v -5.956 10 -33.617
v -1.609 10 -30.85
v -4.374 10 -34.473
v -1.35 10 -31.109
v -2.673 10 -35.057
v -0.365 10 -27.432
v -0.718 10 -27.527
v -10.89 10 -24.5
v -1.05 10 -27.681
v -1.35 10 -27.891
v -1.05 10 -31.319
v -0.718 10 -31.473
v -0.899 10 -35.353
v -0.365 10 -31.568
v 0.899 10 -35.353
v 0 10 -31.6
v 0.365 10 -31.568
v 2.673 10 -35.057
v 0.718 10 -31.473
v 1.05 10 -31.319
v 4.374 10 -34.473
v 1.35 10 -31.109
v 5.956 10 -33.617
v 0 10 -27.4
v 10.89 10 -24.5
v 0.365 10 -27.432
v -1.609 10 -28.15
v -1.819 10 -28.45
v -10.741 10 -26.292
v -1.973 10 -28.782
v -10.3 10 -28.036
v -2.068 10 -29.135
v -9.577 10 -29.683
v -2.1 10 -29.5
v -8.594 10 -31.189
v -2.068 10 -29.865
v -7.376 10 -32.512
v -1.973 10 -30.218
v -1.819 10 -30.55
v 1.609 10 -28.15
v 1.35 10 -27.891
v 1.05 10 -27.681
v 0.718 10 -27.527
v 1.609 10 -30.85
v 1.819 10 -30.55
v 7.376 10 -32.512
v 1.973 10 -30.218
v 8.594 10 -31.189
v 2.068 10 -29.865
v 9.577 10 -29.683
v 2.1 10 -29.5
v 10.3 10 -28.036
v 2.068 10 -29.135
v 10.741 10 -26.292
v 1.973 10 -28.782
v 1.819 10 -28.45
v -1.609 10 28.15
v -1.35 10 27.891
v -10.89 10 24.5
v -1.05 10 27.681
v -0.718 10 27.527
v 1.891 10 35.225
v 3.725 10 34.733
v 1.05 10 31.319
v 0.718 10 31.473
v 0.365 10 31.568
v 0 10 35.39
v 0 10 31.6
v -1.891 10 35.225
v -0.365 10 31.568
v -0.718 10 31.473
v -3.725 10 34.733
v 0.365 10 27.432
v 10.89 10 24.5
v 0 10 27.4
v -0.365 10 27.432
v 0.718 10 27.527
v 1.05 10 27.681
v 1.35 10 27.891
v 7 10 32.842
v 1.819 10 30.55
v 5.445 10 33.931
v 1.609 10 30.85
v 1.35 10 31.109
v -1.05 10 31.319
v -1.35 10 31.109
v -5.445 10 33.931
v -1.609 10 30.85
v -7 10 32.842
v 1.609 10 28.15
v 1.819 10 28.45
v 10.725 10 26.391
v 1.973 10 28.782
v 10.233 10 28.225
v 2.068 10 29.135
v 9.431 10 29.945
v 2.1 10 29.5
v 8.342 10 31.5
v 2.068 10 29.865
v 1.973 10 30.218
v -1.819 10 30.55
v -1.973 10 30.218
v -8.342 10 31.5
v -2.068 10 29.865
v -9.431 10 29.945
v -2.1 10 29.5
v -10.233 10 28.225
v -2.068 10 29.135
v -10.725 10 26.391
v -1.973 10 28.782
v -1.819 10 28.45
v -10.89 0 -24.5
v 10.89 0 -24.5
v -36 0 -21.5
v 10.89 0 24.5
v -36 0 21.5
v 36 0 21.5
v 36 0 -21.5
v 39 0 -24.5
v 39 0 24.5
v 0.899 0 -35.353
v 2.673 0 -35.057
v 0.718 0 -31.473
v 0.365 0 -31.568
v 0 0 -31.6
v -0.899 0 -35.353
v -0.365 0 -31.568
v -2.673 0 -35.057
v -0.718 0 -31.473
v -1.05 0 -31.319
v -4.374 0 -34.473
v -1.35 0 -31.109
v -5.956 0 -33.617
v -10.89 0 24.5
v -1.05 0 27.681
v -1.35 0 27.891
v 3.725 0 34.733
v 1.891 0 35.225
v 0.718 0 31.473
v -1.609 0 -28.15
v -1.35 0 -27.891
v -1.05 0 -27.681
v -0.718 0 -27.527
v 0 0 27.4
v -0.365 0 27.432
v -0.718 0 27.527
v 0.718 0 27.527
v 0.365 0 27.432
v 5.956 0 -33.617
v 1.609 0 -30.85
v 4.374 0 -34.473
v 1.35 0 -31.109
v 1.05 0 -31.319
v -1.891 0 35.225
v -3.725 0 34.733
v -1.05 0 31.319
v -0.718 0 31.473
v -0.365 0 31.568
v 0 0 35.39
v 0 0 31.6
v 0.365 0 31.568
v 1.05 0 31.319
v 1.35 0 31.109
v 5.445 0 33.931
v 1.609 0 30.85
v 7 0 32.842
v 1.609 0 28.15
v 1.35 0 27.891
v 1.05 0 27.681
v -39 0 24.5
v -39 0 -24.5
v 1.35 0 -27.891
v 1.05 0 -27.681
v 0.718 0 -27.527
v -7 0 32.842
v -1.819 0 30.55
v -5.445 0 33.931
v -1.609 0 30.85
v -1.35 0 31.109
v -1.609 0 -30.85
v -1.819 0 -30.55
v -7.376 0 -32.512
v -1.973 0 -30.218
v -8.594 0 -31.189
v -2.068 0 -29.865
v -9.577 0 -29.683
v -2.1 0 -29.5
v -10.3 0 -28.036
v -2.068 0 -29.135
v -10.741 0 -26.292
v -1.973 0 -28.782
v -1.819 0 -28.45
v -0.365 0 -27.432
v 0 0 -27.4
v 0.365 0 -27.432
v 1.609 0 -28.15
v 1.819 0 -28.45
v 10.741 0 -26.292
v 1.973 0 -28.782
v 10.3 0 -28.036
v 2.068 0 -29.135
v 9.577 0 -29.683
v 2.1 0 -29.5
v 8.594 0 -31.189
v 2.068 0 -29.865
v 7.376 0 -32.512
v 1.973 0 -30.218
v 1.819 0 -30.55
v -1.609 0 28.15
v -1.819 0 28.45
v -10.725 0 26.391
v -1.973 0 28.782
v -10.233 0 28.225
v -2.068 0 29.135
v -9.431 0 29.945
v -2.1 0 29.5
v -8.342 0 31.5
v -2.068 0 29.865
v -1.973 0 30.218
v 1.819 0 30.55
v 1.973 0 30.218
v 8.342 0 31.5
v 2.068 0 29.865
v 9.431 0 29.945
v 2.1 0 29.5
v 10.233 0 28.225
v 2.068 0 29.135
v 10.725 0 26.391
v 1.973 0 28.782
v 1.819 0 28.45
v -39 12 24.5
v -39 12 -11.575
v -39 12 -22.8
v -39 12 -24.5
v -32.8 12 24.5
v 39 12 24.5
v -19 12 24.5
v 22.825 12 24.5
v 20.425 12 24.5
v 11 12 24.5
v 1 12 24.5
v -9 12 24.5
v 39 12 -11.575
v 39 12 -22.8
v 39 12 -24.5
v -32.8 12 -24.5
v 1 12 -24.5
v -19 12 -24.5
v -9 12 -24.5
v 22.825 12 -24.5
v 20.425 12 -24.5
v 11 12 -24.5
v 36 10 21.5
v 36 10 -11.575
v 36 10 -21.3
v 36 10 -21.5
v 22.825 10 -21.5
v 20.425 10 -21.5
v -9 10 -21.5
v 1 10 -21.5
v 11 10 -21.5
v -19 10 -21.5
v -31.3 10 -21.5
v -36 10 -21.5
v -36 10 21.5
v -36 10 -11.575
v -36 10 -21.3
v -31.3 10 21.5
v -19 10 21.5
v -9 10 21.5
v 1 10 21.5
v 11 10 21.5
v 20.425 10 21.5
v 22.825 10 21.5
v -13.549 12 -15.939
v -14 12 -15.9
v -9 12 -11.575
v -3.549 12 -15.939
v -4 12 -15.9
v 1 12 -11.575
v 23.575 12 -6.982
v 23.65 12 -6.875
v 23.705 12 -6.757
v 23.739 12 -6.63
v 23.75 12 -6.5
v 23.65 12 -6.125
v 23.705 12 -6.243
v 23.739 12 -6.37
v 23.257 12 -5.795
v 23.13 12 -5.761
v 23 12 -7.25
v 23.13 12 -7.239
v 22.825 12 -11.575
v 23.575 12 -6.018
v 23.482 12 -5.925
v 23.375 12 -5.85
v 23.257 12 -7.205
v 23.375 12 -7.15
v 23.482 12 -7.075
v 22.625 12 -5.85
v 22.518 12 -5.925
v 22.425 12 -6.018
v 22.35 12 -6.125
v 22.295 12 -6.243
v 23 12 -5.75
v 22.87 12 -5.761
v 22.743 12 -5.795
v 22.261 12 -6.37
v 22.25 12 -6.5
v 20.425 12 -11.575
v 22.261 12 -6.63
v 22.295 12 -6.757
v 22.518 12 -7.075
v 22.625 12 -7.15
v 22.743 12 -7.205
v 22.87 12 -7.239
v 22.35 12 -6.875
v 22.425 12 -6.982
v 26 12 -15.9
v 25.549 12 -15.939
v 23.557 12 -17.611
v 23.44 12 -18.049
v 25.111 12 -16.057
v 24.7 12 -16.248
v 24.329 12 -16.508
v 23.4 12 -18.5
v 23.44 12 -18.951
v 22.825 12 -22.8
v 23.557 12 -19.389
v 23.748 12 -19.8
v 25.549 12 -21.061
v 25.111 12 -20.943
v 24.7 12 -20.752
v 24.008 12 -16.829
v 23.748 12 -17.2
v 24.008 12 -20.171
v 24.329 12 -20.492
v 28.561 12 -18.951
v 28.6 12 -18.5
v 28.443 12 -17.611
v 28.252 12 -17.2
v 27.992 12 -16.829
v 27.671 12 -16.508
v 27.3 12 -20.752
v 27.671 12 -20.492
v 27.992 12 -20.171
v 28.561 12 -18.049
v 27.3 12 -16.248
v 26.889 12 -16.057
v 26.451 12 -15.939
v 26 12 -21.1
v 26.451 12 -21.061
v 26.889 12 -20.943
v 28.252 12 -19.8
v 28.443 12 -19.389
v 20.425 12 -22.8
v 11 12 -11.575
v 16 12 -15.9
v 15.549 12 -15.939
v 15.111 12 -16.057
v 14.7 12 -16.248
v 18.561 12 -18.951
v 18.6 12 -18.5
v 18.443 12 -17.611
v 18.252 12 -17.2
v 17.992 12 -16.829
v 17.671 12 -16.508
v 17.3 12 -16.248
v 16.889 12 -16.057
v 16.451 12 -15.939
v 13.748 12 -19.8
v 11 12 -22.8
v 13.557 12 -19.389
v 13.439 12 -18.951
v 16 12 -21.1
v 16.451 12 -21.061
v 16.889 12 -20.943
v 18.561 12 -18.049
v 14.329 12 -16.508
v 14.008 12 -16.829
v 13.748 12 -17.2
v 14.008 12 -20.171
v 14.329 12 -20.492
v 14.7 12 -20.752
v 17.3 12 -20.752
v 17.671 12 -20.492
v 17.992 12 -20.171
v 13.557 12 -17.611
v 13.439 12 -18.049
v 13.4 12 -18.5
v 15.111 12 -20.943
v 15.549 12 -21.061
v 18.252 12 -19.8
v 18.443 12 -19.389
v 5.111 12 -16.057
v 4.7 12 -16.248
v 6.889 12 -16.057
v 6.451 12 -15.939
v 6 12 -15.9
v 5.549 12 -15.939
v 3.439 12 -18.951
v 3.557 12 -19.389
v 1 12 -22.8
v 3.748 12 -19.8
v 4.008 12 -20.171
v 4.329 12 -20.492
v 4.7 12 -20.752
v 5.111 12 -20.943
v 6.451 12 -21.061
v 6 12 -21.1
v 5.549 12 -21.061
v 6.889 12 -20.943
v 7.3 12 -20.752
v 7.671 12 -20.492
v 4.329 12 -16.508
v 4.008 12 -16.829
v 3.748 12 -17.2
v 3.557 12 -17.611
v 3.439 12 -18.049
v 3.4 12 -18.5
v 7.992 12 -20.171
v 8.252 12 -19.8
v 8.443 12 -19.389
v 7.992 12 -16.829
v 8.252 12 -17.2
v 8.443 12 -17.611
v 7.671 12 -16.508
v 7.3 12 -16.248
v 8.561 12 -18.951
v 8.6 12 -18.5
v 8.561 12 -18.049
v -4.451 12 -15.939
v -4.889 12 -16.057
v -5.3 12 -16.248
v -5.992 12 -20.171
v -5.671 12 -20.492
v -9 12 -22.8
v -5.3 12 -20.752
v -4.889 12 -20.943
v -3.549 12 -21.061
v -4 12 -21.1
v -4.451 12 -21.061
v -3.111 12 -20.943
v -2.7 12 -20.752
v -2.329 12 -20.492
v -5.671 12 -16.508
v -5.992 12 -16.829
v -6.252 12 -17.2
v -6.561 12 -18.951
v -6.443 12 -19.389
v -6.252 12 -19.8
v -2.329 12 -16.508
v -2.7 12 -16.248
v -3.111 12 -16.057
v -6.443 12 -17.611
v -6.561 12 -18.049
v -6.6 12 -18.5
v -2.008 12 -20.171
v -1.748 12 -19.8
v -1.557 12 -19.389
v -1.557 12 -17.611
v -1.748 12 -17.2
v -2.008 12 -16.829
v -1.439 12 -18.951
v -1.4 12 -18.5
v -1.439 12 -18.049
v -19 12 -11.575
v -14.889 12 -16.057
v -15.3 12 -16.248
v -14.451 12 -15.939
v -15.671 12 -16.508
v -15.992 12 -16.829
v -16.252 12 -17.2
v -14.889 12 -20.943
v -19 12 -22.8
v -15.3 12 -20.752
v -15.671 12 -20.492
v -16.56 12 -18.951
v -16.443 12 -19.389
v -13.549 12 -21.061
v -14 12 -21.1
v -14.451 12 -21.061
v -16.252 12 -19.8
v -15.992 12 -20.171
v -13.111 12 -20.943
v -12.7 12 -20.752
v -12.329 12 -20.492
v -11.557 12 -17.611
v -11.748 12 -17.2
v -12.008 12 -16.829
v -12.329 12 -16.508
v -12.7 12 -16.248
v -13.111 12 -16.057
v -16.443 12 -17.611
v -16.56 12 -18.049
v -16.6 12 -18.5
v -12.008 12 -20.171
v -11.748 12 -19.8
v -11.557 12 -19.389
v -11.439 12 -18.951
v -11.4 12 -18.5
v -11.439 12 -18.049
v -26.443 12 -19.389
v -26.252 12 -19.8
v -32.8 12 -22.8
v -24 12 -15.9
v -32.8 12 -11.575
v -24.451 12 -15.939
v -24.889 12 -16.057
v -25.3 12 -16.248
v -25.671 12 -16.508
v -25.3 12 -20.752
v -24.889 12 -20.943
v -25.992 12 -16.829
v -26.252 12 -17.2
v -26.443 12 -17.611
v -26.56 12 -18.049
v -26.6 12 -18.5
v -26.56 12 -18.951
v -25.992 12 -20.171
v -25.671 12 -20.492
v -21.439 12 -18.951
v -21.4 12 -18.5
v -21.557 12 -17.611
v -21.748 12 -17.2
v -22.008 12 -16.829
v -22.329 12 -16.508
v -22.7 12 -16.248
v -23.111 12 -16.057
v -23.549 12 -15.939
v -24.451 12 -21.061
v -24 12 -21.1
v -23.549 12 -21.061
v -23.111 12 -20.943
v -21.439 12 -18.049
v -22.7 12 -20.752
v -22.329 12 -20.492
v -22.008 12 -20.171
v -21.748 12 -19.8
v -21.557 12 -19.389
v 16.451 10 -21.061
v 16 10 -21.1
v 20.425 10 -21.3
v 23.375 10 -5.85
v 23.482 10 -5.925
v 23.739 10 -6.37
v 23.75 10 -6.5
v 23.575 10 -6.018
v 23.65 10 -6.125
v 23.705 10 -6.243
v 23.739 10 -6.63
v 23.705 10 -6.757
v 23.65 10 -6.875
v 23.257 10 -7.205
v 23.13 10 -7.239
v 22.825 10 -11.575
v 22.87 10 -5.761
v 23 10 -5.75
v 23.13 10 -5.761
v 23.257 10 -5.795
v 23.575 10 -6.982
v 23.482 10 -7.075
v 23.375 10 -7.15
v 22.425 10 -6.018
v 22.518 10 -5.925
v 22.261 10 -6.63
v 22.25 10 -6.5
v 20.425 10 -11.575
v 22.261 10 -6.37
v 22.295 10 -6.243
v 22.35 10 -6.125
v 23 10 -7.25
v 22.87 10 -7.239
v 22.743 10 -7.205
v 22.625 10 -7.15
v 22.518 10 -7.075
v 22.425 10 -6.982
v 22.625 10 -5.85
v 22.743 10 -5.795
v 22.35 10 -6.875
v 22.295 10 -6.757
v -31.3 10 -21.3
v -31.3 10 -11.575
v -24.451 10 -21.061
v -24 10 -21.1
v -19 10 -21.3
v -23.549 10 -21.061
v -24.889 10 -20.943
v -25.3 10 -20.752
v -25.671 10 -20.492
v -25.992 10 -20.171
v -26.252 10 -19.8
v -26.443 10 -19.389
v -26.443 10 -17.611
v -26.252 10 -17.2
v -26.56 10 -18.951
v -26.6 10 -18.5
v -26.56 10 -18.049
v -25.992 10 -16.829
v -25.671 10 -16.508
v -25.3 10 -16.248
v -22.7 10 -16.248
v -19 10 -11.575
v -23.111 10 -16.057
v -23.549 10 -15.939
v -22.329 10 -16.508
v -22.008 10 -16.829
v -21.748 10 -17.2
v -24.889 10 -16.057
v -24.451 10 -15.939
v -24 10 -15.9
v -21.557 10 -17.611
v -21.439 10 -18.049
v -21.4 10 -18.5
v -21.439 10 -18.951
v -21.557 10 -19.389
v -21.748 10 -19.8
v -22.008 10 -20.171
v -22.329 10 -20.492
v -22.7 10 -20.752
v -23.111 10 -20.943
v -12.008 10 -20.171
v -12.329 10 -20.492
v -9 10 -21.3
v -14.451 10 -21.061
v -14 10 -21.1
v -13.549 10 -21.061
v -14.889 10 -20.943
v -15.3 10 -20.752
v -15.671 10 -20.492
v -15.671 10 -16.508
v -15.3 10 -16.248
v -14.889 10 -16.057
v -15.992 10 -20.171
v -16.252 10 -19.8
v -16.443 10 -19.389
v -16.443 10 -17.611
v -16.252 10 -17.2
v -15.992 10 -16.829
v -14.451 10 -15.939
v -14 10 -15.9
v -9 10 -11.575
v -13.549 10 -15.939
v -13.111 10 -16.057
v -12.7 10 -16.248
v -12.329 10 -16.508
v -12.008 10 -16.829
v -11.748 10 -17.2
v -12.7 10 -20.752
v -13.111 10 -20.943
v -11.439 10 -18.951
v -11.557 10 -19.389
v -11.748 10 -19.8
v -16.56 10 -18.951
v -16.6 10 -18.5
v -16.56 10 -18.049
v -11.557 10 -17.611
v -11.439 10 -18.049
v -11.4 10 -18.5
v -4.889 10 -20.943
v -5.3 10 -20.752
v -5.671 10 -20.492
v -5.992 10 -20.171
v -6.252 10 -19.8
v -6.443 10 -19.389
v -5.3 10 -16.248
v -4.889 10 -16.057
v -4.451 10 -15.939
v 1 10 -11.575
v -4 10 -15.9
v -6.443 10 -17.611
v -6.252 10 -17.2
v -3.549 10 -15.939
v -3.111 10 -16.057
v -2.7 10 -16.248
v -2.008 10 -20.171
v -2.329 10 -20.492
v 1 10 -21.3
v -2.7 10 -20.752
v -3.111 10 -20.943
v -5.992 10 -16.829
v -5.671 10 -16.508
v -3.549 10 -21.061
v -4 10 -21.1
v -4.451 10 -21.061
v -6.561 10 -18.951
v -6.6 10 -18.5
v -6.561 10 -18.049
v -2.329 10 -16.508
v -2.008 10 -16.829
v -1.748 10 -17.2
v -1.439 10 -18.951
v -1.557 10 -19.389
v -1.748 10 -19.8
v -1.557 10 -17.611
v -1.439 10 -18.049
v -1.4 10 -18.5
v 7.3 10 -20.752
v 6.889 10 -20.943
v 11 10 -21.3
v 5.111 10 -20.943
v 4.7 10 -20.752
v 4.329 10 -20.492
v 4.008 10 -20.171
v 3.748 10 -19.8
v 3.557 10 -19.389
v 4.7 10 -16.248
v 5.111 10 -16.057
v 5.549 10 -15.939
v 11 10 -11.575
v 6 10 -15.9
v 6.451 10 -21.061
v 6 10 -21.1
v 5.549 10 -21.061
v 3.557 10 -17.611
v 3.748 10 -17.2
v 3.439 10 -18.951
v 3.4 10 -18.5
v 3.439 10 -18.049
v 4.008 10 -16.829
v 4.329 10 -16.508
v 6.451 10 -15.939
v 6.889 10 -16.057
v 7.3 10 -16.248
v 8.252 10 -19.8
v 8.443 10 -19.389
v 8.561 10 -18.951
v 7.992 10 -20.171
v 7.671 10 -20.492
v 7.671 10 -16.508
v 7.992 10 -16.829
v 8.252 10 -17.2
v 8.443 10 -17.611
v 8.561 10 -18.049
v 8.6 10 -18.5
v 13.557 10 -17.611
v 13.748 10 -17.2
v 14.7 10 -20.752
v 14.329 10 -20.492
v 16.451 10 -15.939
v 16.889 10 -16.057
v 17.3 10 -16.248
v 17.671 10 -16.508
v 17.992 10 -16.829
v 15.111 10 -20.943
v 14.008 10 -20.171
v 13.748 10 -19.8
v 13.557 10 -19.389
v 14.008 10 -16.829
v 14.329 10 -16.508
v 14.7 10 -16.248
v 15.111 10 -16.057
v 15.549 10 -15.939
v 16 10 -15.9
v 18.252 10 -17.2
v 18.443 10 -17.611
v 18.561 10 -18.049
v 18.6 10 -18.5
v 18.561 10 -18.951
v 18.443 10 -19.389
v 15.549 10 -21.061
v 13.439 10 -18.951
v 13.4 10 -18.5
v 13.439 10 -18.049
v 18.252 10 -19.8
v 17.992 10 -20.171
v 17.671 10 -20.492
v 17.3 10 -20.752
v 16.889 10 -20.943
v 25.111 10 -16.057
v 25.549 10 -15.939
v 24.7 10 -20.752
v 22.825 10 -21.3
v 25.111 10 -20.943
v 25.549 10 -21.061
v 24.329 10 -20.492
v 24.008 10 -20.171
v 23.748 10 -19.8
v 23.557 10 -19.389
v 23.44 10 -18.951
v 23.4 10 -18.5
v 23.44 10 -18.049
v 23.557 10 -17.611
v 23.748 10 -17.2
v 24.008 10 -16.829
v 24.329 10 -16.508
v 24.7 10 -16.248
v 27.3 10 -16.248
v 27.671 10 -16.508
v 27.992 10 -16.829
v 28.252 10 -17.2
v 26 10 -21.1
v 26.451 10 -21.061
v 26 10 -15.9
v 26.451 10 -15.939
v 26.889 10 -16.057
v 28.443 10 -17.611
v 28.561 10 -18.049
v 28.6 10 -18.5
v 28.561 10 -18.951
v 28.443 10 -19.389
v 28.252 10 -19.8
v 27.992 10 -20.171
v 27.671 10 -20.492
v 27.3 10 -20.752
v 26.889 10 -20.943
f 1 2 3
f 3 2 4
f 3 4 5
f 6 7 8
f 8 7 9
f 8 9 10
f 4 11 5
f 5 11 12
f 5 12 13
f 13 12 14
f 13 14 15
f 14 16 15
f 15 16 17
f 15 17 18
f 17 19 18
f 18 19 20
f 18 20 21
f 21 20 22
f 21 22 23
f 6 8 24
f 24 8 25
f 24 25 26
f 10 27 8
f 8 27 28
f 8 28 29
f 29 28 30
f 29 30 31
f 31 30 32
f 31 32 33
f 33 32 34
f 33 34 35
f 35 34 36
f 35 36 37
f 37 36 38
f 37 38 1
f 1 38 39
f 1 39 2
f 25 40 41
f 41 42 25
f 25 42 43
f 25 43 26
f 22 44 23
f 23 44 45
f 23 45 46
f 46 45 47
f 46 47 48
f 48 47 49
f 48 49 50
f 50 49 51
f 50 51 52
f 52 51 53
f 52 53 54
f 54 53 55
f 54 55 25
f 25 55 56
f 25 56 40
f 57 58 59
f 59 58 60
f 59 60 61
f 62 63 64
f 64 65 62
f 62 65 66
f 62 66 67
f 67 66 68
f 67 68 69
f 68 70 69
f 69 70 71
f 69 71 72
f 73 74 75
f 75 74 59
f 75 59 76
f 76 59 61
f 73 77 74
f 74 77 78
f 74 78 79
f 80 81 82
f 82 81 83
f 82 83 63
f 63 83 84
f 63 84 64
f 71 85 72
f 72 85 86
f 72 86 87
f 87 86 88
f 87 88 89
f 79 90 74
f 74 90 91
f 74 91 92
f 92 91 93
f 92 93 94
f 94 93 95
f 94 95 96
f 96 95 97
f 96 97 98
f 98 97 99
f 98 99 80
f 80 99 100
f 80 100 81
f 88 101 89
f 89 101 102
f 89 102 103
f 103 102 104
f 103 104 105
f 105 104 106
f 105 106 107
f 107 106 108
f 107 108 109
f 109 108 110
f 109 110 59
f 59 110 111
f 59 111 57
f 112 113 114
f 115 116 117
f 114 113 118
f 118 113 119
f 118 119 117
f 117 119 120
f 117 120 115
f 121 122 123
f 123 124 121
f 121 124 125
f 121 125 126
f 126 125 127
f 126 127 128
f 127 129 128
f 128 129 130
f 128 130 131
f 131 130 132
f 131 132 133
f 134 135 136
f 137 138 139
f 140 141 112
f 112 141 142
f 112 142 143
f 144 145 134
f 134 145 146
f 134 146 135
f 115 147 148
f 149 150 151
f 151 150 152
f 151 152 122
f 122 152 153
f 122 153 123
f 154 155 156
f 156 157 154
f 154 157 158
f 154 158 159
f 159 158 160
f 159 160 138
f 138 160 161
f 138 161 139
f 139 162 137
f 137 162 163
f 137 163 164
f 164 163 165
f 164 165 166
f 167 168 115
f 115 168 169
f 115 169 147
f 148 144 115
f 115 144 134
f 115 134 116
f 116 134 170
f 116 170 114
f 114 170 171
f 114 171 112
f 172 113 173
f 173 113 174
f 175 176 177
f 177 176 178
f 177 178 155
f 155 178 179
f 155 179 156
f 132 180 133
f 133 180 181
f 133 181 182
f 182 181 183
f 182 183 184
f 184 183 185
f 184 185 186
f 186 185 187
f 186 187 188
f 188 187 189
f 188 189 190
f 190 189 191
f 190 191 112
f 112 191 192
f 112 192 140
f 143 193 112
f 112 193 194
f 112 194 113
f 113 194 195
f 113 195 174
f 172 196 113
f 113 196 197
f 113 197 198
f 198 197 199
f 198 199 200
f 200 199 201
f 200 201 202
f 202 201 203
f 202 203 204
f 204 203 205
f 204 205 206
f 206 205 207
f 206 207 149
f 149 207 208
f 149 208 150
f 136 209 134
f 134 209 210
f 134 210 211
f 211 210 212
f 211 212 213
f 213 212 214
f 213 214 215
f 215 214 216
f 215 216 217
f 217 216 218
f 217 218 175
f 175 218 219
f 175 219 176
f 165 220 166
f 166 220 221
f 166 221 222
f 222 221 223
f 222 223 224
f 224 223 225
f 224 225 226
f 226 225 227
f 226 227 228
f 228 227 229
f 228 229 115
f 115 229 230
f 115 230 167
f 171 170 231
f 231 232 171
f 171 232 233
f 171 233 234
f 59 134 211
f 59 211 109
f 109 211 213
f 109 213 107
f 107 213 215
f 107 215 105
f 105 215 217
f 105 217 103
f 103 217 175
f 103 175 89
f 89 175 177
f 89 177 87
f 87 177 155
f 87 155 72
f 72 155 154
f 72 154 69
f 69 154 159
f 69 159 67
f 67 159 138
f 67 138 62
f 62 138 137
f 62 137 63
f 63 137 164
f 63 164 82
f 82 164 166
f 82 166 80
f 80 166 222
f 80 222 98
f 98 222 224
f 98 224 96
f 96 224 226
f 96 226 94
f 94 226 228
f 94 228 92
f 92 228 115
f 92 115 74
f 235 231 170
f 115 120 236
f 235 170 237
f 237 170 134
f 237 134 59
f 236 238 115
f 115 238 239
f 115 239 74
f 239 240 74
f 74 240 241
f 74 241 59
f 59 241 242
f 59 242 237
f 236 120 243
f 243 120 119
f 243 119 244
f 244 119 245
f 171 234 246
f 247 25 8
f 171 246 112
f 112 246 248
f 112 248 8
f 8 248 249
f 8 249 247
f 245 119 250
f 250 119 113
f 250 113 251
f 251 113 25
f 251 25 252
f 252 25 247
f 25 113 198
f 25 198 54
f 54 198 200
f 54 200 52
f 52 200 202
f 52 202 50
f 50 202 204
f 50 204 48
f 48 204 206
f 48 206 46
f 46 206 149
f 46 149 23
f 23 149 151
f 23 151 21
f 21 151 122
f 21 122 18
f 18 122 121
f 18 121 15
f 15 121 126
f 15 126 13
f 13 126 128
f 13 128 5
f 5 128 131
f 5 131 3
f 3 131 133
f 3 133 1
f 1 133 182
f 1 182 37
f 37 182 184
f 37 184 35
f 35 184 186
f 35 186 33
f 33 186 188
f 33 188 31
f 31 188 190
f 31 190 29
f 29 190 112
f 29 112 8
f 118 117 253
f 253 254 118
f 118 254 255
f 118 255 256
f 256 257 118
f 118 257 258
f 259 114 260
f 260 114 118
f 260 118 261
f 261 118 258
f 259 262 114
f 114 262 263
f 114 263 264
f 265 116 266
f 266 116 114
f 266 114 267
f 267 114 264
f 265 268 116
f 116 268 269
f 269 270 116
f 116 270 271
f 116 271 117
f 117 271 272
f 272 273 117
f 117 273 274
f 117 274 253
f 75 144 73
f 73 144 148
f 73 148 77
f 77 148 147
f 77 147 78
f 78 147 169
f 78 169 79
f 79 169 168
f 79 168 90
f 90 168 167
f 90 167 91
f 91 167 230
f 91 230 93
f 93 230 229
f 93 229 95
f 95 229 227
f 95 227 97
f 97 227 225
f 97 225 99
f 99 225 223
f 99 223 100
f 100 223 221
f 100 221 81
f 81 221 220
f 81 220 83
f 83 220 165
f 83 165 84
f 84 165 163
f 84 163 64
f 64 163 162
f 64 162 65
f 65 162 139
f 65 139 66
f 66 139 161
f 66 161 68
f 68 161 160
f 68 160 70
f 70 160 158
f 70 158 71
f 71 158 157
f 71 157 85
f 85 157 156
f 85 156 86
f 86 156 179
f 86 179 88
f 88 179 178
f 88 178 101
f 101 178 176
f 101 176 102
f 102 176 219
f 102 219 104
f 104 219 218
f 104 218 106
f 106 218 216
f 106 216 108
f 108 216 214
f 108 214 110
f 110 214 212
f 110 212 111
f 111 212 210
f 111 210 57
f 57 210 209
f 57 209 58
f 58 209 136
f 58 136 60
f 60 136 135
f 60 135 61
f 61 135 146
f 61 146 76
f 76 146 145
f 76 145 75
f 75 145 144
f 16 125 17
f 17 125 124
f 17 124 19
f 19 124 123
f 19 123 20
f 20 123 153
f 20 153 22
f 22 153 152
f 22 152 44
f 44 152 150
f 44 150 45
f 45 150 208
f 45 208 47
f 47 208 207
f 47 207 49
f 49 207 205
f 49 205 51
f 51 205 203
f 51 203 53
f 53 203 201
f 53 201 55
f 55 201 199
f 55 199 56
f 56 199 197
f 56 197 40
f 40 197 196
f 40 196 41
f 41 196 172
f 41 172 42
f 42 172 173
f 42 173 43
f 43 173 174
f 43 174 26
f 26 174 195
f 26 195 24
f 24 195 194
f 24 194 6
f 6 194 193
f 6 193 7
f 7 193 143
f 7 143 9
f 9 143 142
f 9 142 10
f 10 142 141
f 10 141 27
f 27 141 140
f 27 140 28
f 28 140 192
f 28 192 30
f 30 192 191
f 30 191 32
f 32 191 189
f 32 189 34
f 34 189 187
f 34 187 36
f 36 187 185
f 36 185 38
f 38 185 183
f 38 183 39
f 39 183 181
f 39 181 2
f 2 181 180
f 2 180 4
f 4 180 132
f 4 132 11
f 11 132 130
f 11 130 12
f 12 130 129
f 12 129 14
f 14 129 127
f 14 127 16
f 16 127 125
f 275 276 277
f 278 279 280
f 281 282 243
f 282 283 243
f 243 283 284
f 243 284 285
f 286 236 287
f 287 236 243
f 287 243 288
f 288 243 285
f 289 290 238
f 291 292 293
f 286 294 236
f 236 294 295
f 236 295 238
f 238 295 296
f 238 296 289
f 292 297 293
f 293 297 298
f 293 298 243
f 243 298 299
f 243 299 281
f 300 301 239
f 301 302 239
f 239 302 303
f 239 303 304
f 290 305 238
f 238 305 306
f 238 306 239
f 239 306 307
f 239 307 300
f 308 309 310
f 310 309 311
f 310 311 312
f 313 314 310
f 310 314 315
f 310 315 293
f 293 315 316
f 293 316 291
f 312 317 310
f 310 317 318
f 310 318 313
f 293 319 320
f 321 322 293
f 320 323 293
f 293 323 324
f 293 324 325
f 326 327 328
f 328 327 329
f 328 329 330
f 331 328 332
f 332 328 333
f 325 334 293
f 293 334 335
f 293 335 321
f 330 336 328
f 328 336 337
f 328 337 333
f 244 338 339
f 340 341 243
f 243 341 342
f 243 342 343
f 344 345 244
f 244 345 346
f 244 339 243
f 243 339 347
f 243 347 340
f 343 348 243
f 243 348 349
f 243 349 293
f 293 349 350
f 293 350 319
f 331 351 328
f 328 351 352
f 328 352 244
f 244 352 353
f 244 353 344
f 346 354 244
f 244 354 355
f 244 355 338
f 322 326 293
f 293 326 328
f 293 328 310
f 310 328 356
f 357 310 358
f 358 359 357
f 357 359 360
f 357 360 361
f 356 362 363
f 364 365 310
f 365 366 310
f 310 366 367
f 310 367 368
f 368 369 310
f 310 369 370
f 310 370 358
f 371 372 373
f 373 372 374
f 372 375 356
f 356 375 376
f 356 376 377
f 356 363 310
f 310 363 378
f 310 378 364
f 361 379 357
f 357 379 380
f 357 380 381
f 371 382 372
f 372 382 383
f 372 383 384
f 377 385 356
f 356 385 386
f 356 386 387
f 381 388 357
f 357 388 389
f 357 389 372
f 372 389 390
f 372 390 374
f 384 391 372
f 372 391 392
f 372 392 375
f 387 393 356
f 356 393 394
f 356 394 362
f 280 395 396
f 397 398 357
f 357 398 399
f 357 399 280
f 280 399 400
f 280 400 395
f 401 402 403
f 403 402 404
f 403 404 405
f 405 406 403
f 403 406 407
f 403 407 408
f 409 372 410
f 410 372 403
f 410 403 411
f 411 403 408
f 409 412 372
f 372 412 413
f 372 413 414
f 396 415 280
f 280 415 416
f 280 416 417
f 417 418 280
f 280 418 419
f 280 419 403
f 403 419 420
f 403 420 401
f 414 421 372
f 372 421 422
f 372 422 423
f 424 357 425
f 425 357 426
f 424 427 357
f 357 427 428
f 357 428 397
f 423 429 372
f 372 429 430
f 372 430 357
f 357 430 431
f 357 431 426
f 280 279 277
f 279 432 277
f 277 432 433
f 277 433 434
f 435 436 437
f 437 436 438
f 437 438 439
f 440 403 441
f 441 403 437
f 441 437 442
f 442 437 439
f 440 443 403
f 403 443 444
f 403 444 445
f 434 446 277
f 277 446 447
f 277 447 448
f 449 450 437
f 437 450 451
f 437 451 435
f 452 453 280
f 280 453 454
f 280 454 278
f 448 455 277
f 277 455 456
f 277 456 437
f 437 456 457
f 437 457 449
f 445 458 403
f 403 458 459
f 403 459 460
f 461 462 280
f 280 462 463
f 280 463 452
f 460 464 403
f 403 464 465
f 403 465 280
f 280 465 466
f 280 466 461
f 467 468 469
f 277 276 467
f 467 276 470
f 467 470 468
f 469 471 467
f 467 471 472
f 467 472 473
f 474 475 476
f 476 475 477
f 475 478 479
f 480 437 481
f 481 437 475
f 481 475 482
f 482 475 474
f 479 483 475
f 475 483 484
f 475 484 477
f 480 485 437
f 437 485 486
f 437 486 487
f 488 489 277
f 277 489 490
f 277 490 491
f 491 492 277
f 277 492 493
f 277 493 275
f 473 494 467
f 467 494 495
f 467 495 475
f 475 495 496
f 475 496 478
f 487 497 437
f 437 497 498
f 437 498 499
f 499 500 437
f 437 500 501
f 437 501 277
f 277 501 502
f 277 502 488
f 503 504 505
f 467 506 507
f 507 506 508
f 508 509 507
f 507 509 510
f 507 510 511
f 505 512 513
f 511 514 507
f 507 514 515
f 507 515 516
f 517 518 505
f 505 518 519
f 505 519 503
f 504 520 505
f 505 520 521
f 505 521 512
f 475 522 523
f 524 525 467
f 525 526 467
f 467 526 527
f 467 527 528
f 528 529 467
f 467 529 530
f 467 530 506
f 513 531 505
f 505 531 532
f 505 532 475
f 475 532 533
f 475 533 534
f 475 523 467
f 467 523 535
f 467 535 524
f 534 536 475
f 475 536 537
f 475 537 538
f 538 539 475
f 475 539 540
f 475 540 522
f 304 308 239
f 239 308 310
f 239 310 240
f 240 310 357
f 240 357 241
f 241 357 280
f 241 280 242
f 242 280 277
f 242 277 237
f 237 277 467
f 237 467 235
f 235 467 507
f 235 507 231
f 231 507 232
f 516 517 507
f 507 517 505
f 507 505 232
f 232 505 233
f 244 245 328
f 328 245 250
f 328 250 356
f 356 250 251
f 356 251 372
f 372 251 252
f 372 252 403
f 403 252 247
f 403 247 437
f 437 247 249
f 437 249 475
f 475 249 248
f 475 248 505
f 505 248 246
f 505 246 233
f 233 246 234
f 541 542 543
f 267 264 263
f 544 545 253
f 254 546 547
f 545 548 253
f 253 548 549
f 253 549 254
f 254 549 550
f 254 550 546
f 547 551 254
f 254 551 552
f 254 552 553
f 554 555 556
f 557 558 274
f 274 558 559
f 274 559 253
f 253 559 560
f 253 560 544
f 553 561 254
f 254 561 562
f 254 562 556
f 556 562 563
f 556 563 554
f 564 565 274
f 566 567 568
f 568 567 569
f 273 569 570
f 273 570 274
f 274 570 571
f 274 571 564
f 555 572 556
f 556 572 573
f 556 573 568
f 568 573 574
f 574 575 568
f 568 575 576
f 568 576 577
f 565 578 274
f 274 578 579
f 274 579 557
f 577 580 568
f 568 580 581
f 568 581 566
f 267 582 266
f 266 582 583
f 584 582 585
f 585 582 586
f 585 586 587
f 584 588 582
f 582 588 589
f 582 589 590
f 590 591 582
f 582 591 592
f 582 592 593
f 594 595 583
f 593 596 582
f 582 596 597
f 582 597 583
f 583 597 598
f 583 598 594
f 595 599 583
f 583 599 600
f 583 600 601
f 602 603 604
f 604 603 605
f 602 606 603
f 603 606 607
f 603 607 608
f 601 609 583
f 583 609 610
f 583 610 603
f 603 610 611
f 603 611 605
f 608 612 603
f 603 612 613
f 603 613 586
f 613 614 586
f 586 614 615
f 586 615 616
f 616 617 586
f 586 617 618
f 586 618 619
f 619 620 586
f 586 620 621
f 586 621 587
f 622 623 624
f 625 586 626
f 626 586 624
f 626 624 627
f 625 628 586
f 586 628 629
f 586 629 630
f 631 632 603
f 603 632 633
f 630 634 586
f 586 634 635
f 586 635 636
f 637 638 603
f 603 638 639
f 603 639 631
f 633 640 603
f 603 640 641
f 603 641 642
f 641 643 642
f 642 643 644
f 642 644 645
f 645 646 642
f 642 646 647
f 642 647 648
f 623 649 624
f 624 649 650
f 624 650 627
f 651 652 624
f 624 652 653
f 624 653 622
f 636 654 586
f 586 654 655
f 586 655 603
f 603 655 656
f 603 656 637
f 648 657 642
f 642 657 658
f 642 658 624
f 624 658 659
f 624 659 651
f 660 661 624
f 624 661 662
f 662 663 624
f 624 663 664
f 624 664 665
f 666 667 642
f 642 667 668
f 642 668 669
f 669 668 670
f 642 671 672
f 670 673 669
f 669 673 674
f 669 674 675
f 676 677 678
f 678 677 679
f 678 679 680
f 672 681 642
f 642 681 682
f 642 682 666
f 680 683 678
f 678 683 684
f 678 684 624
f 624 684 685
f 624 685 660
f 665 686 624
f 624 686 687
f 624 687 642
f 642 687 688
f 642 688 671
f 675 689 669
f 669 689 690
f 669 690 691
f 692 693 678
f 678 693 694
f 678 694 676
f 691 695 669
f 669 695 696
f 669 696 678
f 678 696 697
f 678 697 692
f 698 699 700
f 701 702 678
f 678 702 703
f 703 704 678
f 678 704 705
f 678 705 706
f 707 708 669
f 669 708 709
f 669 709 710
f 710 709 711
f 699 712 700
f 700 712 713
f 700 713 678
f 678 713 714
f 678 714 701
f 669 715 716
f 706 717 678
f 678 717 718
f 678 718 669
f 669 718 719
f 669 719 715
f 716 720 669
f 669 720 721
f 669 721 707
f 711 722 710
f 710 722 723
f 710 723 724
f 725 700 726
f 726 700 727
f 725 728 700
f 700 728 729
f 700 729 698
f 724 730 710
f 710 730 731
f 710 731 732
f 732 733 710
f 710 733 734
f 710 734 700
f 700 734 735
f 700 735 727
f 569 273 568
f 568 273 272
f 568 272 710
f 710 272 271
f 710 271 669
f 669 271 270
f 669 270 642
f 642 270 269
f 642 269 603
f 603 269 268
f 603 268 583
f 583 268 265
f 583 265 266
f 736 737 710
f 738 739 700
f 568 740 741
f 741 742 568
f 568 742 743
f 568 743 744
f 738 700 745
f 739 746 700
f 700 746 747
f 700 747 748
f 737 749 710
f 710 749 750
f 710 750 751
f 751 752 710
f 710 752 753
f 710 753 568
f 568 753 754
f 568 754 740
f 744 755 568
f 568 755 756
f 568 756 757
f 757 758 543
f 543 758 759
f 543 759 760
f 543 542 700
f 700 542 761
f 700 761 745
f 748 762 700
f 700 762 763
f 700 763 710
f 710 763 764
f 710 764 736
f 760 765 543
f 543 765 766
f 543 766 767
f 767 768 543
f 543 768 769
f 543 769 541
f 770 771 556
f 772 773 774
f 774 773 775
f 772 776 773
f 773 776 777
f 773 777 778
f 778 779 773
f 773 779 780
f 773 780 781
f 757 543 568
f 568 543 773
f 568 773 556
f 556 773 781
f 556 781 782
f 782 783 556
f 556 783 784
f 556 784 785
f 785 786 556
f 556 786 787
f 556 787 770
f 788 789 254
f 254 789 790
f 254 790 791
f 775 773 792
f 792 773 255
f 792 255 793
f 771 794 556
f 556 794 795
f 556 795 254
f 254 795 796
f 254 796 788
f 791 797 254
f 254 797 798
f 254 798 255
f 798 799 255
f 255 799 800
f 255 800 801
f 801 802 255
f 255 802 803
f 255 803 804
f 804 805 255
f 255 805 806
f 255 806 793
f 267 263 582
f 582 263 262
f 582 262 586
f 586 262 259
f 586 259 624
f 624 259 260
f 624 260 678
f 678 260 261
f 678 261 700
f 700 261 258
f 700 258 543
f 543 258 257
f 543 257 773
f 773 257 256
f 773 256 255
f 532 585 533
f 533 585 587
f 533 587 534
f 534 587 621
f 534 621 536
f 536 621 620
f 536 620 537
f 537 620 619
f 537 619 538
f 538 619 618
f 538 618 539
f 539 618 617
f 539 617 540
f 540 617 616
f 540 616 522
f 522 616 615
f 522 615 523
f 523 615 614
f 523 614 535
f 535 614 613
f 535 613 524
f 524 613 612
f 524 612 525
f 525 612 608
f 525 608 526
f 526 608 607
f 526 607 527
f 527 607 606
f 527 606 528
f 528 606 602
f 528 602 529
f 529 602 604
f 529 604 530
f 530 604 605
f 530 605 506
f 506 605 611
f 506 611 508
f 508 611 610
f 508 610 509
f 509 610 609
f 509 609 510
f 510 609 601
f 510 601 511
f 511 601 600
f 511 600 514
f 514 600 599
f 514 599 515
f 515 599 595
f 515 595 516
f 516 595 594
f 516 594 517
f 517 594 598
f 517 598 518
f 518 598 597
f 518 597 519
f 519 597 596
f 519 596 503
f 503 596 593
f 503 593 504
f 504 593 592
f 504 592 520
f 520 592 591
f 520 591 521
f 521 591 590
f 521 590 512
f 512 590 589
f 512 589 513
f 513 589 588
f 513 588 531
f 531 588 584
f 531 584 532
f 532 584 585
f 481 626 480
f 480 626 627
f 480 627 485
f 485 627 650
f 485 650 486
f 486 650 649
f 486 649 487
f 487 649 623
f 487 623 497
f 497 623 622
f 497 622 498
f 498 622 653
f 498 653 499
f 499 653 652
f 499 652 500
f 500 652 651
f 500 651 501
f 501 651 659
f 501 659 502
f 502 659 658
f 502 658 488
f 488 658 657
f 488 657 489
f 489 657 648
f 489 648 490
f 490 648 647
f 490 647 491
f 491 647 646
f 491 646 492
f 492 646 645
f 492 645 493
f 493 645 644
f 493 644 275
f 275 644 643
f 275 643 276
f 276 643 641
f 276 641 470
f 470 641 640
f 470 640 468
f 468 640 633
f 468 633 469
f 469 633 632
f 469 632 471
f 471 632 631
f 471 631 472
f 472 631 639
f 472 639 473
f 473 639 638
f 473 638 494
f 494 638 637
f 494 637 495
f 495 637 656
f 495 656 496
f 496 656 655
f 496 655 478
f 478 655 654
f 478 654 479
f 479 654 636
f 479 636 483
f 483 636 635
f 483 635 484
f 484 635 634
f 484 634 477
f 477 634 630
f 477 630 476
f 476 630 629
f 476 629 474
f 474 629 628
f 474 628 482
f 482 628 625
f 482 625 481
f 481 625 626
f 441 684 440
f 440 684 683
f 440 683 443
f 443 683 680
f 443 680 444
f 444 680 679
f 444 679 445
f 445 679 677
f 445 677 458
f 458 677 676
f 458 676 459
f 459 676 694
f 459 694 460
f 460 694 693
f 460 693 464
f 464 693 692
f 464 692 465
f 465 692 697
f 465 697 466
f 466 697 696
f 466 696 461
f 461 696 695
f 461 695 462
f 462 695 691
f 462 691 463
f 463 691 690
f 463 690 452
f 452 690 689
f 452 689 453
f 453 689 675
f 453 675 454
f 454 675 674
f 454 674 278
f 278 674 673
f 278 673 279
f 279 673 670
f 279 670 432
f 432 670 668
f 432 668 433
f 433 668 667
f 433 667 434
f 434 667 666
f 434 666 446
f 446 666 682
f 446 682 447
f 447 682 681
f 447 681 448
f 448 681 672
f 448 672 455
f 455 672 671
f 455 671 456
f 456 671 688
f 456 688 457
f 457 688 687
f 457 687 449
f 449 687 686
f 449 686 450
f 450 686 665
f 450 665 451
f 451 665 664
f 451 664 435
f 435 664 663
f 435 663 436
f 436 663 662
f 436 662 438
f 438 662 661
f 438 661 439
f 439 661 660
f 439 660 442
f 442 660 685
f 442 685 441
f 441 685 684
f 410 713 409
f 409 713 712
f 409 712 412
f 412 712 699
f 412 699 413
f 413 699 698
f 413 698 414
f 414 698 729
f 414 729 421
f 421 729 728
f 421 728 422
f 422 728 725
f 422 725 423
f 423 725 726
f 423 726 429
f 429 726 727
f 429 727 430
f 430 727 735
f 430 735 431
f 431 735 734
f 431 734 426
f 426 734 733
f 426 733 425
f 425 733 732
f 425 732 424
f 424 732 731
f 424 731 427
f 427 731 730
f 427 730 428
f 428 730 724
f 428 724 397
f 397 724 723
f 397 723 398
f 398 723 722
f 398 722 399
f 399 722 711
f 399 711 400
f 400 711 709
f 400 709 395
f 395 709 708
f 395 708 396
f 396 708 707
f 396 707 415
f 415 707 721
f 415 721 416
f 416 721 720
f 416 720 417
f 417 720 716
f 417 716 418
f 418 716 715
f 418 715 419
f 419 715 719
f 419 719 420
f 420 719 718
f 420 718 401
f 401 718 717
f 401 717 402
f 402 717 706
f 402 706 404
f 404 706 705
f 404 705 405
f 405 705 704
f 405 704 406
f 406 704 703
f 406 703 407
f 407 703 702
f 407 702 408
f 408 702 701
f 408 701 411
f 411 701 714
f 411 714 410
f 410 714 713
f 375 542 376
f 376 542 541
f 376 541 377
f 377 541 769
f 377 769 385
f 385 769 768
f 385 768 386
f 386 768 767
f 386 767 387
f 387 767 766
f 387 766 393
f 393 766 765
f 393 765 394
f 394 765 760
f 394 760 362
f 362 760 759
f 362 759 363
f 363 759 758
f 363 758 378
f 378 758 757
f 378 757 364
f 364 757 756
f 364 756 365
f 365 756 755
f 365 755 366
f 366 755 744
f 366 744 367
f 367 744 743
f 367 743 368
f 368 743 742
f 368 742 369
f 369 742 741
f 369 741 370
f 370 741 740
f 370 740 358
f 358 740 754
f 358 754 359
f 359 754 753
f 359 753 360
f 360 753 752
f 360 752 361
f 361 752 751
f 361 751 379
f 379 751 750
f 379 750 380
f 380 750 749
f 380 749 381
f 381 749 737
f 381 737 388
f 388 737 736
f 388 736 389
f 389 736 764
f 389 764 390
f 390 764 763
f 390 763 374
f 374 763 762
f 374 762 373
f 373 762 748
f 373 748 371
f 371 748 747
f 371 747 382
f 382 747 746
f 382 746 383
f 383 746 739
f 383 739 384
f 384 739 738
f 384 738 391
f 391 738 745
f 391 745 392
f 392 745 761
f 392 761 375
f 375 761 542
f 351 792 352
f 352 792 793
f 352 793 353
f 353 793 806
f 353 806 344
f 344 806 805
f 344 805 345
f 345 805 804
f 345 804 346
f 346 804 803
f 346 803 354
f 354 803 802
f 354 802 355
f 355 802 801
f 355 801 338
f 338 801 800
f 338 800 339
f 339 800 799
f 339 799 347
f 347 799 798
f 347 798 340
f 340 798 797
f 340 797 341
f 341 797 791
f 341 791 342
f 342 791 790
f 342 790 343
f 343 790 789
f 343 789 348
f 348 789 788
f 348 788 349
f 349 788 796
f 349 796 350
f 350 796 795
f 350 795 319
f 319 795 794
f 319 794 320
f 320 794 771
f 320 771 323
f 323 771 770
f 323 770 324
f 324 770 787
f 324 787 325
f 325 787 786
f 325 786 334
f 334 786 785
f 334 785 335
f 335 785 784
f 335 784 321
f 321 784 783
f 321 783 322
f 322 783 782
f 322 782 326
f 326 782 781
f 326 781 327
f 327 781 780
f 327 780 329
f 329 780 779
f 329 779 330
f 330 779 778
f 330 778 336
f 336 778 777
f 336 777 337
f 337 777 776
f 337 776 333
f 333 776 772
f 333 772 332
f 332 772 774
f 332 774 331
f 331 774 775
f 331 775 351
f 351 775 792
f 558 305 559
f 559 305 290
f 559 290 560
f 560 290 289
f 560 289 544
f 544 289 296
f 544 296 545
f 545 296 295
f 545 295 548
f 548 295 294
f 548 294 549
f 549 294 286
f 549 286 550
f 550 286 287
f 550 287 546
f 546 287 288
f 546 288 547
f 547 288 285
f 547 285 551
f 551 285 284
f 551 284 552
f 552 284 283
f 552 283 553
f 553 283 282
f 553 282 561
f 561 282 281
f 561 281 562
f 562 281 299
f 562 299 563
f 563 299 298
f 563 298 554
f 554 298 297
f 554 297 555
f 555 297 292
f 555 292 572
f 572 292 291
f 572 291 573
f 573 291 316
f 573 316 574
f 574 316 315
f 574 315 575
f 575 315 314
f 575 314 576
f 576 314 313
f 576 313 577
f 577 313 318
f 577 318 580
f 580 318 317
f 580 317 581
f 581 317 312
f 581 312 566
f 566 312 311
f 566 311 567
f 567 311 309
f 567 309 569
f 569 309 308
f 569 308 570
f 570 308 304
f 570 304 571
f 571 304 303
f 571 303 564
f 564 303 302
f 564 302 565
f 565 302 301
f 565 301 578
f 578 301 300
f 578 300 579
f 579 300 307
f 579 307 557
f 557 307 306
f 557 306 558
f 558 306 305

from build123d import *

# Parameters (mm, degrees)
SKETCH2_R           = 2.1
SKETCH2_W           = 72
SKETCH2_H           = 43
BOSS_EXTRUDE1_DEPTH = 10
SKETCH3_W           = 78
SKETCH3_H           = 49
SKETCH3_R           = 2.6
BOSS_EXTRUDE2_DEPTH = 2
SKETCH4_R           = 0.75
CUT_EXTRUDE1_DEPTH  = 10


with BuildPart() as part:
    # Sketch2 → Boss-Extrude1 (new body)
    with BuildSketch(Plane(origin=(0, 0, 0), x_dir=(1, 0, 0), z_dir=(0, 1, 0))):
        with BuildLine():
            Line((-39, 24.5), (-39, 10.89))
            Line((-39, 10.89), (-39, -10.89))
            Line((-39, -10.89), (-39, -24.5))
            Line((-39, -24.5), (-10.89, -24.5))
            ThreePointArc((-10.89, -24.5), (0, -35.39), (10.89, -24.5))
            Line((10.89, -24.5), (39, -24.5))
            Line((39, -24.5), (39, -10.89))
            Line((39, -10.89), (39, 10.89))
            Line((39, 10.89), (39, 24.5))
            Line((39, 24.5), (10.89, 24.5))
            ThreePointArc((10.89, 24.5), (0, 35.39), (-10.89, 24.5))
            Line((-10.89, 24.5), (-39, 24.5))
        make_face()
        with Locations(Location((0, 29.5, 0), (0, 0, 270))):
            Circle(SKETCH2_R, mode=Mode.SUBTRACT)
        with Locations(Location((0, -29.5, 0), (0, 0, 270))):
            Circle(SKETCH2_R, mode=Mode.SUBTRACT)
        Rectangle(SKETCH2_W, SKETCH2_H, mode=Mode.SUBTRACT)
    extrude(amount=BOSS_EXTRUDE1_DEPTH)

    # Sketch3 → Boss-Extrude2 (add)
    with BuildSketch(Plane(origin=(0, 10, 0), x_dir=(1, 0, 0), z_dir=(0, 1, 0))):
        Rectangle(SKETCH3_W, SKETCH3_H)
        with Locations(Location((-24, 18.5, 0), (0, 0, 270))):
            Circle(SKETCH3_R, mode=Mode.SUBTRACT)
        with Locations(Location((-14, 18.5, 0), (0, 0, 270))):
            Circle(SKETCH3_R, mode=Mode.SUBTRACT)
        with Locations(Location((-4, 18.5, 0), (0, 0, 270))):
            Circle(SKETCH3_R, mode=Mode.SUBTRACT)
        with Locations(Location((6, 18.5, 0), (0, 0, 270))):
            Circle(SKETCH3_R, mode=Mode.SUBTRACT)
        with Locations(Location((16, 18.5, 0), (0, 0, 270))):
            Circle(SKETCH3_R, mode=Mode.SUBTRACT)
        with Locations(Location((26, 18.5, 0), (0, 0, 270))):
            Circle(SKETCH3_R, mode=Mode.SUBTRACT)
    extrude(amount=BOSS_EXTRUDE2_DEPTH)

    # Sketch4 → Cut-Extrude1 (cut)
    with BuildSketch(Plane(origin=(0, 12, 0), x_dir=(1, 0, 0), z_dir=(0, 1, 0))):
        with Locations(Location((23, 6.5, 0), (0, 0, 270))):
            Circle(SKETCH4_R)
    extrude(amount=-CUT_EXTRUDE1_DEPTH, mode=Mode.SUBTRACT)


solid = part.part
